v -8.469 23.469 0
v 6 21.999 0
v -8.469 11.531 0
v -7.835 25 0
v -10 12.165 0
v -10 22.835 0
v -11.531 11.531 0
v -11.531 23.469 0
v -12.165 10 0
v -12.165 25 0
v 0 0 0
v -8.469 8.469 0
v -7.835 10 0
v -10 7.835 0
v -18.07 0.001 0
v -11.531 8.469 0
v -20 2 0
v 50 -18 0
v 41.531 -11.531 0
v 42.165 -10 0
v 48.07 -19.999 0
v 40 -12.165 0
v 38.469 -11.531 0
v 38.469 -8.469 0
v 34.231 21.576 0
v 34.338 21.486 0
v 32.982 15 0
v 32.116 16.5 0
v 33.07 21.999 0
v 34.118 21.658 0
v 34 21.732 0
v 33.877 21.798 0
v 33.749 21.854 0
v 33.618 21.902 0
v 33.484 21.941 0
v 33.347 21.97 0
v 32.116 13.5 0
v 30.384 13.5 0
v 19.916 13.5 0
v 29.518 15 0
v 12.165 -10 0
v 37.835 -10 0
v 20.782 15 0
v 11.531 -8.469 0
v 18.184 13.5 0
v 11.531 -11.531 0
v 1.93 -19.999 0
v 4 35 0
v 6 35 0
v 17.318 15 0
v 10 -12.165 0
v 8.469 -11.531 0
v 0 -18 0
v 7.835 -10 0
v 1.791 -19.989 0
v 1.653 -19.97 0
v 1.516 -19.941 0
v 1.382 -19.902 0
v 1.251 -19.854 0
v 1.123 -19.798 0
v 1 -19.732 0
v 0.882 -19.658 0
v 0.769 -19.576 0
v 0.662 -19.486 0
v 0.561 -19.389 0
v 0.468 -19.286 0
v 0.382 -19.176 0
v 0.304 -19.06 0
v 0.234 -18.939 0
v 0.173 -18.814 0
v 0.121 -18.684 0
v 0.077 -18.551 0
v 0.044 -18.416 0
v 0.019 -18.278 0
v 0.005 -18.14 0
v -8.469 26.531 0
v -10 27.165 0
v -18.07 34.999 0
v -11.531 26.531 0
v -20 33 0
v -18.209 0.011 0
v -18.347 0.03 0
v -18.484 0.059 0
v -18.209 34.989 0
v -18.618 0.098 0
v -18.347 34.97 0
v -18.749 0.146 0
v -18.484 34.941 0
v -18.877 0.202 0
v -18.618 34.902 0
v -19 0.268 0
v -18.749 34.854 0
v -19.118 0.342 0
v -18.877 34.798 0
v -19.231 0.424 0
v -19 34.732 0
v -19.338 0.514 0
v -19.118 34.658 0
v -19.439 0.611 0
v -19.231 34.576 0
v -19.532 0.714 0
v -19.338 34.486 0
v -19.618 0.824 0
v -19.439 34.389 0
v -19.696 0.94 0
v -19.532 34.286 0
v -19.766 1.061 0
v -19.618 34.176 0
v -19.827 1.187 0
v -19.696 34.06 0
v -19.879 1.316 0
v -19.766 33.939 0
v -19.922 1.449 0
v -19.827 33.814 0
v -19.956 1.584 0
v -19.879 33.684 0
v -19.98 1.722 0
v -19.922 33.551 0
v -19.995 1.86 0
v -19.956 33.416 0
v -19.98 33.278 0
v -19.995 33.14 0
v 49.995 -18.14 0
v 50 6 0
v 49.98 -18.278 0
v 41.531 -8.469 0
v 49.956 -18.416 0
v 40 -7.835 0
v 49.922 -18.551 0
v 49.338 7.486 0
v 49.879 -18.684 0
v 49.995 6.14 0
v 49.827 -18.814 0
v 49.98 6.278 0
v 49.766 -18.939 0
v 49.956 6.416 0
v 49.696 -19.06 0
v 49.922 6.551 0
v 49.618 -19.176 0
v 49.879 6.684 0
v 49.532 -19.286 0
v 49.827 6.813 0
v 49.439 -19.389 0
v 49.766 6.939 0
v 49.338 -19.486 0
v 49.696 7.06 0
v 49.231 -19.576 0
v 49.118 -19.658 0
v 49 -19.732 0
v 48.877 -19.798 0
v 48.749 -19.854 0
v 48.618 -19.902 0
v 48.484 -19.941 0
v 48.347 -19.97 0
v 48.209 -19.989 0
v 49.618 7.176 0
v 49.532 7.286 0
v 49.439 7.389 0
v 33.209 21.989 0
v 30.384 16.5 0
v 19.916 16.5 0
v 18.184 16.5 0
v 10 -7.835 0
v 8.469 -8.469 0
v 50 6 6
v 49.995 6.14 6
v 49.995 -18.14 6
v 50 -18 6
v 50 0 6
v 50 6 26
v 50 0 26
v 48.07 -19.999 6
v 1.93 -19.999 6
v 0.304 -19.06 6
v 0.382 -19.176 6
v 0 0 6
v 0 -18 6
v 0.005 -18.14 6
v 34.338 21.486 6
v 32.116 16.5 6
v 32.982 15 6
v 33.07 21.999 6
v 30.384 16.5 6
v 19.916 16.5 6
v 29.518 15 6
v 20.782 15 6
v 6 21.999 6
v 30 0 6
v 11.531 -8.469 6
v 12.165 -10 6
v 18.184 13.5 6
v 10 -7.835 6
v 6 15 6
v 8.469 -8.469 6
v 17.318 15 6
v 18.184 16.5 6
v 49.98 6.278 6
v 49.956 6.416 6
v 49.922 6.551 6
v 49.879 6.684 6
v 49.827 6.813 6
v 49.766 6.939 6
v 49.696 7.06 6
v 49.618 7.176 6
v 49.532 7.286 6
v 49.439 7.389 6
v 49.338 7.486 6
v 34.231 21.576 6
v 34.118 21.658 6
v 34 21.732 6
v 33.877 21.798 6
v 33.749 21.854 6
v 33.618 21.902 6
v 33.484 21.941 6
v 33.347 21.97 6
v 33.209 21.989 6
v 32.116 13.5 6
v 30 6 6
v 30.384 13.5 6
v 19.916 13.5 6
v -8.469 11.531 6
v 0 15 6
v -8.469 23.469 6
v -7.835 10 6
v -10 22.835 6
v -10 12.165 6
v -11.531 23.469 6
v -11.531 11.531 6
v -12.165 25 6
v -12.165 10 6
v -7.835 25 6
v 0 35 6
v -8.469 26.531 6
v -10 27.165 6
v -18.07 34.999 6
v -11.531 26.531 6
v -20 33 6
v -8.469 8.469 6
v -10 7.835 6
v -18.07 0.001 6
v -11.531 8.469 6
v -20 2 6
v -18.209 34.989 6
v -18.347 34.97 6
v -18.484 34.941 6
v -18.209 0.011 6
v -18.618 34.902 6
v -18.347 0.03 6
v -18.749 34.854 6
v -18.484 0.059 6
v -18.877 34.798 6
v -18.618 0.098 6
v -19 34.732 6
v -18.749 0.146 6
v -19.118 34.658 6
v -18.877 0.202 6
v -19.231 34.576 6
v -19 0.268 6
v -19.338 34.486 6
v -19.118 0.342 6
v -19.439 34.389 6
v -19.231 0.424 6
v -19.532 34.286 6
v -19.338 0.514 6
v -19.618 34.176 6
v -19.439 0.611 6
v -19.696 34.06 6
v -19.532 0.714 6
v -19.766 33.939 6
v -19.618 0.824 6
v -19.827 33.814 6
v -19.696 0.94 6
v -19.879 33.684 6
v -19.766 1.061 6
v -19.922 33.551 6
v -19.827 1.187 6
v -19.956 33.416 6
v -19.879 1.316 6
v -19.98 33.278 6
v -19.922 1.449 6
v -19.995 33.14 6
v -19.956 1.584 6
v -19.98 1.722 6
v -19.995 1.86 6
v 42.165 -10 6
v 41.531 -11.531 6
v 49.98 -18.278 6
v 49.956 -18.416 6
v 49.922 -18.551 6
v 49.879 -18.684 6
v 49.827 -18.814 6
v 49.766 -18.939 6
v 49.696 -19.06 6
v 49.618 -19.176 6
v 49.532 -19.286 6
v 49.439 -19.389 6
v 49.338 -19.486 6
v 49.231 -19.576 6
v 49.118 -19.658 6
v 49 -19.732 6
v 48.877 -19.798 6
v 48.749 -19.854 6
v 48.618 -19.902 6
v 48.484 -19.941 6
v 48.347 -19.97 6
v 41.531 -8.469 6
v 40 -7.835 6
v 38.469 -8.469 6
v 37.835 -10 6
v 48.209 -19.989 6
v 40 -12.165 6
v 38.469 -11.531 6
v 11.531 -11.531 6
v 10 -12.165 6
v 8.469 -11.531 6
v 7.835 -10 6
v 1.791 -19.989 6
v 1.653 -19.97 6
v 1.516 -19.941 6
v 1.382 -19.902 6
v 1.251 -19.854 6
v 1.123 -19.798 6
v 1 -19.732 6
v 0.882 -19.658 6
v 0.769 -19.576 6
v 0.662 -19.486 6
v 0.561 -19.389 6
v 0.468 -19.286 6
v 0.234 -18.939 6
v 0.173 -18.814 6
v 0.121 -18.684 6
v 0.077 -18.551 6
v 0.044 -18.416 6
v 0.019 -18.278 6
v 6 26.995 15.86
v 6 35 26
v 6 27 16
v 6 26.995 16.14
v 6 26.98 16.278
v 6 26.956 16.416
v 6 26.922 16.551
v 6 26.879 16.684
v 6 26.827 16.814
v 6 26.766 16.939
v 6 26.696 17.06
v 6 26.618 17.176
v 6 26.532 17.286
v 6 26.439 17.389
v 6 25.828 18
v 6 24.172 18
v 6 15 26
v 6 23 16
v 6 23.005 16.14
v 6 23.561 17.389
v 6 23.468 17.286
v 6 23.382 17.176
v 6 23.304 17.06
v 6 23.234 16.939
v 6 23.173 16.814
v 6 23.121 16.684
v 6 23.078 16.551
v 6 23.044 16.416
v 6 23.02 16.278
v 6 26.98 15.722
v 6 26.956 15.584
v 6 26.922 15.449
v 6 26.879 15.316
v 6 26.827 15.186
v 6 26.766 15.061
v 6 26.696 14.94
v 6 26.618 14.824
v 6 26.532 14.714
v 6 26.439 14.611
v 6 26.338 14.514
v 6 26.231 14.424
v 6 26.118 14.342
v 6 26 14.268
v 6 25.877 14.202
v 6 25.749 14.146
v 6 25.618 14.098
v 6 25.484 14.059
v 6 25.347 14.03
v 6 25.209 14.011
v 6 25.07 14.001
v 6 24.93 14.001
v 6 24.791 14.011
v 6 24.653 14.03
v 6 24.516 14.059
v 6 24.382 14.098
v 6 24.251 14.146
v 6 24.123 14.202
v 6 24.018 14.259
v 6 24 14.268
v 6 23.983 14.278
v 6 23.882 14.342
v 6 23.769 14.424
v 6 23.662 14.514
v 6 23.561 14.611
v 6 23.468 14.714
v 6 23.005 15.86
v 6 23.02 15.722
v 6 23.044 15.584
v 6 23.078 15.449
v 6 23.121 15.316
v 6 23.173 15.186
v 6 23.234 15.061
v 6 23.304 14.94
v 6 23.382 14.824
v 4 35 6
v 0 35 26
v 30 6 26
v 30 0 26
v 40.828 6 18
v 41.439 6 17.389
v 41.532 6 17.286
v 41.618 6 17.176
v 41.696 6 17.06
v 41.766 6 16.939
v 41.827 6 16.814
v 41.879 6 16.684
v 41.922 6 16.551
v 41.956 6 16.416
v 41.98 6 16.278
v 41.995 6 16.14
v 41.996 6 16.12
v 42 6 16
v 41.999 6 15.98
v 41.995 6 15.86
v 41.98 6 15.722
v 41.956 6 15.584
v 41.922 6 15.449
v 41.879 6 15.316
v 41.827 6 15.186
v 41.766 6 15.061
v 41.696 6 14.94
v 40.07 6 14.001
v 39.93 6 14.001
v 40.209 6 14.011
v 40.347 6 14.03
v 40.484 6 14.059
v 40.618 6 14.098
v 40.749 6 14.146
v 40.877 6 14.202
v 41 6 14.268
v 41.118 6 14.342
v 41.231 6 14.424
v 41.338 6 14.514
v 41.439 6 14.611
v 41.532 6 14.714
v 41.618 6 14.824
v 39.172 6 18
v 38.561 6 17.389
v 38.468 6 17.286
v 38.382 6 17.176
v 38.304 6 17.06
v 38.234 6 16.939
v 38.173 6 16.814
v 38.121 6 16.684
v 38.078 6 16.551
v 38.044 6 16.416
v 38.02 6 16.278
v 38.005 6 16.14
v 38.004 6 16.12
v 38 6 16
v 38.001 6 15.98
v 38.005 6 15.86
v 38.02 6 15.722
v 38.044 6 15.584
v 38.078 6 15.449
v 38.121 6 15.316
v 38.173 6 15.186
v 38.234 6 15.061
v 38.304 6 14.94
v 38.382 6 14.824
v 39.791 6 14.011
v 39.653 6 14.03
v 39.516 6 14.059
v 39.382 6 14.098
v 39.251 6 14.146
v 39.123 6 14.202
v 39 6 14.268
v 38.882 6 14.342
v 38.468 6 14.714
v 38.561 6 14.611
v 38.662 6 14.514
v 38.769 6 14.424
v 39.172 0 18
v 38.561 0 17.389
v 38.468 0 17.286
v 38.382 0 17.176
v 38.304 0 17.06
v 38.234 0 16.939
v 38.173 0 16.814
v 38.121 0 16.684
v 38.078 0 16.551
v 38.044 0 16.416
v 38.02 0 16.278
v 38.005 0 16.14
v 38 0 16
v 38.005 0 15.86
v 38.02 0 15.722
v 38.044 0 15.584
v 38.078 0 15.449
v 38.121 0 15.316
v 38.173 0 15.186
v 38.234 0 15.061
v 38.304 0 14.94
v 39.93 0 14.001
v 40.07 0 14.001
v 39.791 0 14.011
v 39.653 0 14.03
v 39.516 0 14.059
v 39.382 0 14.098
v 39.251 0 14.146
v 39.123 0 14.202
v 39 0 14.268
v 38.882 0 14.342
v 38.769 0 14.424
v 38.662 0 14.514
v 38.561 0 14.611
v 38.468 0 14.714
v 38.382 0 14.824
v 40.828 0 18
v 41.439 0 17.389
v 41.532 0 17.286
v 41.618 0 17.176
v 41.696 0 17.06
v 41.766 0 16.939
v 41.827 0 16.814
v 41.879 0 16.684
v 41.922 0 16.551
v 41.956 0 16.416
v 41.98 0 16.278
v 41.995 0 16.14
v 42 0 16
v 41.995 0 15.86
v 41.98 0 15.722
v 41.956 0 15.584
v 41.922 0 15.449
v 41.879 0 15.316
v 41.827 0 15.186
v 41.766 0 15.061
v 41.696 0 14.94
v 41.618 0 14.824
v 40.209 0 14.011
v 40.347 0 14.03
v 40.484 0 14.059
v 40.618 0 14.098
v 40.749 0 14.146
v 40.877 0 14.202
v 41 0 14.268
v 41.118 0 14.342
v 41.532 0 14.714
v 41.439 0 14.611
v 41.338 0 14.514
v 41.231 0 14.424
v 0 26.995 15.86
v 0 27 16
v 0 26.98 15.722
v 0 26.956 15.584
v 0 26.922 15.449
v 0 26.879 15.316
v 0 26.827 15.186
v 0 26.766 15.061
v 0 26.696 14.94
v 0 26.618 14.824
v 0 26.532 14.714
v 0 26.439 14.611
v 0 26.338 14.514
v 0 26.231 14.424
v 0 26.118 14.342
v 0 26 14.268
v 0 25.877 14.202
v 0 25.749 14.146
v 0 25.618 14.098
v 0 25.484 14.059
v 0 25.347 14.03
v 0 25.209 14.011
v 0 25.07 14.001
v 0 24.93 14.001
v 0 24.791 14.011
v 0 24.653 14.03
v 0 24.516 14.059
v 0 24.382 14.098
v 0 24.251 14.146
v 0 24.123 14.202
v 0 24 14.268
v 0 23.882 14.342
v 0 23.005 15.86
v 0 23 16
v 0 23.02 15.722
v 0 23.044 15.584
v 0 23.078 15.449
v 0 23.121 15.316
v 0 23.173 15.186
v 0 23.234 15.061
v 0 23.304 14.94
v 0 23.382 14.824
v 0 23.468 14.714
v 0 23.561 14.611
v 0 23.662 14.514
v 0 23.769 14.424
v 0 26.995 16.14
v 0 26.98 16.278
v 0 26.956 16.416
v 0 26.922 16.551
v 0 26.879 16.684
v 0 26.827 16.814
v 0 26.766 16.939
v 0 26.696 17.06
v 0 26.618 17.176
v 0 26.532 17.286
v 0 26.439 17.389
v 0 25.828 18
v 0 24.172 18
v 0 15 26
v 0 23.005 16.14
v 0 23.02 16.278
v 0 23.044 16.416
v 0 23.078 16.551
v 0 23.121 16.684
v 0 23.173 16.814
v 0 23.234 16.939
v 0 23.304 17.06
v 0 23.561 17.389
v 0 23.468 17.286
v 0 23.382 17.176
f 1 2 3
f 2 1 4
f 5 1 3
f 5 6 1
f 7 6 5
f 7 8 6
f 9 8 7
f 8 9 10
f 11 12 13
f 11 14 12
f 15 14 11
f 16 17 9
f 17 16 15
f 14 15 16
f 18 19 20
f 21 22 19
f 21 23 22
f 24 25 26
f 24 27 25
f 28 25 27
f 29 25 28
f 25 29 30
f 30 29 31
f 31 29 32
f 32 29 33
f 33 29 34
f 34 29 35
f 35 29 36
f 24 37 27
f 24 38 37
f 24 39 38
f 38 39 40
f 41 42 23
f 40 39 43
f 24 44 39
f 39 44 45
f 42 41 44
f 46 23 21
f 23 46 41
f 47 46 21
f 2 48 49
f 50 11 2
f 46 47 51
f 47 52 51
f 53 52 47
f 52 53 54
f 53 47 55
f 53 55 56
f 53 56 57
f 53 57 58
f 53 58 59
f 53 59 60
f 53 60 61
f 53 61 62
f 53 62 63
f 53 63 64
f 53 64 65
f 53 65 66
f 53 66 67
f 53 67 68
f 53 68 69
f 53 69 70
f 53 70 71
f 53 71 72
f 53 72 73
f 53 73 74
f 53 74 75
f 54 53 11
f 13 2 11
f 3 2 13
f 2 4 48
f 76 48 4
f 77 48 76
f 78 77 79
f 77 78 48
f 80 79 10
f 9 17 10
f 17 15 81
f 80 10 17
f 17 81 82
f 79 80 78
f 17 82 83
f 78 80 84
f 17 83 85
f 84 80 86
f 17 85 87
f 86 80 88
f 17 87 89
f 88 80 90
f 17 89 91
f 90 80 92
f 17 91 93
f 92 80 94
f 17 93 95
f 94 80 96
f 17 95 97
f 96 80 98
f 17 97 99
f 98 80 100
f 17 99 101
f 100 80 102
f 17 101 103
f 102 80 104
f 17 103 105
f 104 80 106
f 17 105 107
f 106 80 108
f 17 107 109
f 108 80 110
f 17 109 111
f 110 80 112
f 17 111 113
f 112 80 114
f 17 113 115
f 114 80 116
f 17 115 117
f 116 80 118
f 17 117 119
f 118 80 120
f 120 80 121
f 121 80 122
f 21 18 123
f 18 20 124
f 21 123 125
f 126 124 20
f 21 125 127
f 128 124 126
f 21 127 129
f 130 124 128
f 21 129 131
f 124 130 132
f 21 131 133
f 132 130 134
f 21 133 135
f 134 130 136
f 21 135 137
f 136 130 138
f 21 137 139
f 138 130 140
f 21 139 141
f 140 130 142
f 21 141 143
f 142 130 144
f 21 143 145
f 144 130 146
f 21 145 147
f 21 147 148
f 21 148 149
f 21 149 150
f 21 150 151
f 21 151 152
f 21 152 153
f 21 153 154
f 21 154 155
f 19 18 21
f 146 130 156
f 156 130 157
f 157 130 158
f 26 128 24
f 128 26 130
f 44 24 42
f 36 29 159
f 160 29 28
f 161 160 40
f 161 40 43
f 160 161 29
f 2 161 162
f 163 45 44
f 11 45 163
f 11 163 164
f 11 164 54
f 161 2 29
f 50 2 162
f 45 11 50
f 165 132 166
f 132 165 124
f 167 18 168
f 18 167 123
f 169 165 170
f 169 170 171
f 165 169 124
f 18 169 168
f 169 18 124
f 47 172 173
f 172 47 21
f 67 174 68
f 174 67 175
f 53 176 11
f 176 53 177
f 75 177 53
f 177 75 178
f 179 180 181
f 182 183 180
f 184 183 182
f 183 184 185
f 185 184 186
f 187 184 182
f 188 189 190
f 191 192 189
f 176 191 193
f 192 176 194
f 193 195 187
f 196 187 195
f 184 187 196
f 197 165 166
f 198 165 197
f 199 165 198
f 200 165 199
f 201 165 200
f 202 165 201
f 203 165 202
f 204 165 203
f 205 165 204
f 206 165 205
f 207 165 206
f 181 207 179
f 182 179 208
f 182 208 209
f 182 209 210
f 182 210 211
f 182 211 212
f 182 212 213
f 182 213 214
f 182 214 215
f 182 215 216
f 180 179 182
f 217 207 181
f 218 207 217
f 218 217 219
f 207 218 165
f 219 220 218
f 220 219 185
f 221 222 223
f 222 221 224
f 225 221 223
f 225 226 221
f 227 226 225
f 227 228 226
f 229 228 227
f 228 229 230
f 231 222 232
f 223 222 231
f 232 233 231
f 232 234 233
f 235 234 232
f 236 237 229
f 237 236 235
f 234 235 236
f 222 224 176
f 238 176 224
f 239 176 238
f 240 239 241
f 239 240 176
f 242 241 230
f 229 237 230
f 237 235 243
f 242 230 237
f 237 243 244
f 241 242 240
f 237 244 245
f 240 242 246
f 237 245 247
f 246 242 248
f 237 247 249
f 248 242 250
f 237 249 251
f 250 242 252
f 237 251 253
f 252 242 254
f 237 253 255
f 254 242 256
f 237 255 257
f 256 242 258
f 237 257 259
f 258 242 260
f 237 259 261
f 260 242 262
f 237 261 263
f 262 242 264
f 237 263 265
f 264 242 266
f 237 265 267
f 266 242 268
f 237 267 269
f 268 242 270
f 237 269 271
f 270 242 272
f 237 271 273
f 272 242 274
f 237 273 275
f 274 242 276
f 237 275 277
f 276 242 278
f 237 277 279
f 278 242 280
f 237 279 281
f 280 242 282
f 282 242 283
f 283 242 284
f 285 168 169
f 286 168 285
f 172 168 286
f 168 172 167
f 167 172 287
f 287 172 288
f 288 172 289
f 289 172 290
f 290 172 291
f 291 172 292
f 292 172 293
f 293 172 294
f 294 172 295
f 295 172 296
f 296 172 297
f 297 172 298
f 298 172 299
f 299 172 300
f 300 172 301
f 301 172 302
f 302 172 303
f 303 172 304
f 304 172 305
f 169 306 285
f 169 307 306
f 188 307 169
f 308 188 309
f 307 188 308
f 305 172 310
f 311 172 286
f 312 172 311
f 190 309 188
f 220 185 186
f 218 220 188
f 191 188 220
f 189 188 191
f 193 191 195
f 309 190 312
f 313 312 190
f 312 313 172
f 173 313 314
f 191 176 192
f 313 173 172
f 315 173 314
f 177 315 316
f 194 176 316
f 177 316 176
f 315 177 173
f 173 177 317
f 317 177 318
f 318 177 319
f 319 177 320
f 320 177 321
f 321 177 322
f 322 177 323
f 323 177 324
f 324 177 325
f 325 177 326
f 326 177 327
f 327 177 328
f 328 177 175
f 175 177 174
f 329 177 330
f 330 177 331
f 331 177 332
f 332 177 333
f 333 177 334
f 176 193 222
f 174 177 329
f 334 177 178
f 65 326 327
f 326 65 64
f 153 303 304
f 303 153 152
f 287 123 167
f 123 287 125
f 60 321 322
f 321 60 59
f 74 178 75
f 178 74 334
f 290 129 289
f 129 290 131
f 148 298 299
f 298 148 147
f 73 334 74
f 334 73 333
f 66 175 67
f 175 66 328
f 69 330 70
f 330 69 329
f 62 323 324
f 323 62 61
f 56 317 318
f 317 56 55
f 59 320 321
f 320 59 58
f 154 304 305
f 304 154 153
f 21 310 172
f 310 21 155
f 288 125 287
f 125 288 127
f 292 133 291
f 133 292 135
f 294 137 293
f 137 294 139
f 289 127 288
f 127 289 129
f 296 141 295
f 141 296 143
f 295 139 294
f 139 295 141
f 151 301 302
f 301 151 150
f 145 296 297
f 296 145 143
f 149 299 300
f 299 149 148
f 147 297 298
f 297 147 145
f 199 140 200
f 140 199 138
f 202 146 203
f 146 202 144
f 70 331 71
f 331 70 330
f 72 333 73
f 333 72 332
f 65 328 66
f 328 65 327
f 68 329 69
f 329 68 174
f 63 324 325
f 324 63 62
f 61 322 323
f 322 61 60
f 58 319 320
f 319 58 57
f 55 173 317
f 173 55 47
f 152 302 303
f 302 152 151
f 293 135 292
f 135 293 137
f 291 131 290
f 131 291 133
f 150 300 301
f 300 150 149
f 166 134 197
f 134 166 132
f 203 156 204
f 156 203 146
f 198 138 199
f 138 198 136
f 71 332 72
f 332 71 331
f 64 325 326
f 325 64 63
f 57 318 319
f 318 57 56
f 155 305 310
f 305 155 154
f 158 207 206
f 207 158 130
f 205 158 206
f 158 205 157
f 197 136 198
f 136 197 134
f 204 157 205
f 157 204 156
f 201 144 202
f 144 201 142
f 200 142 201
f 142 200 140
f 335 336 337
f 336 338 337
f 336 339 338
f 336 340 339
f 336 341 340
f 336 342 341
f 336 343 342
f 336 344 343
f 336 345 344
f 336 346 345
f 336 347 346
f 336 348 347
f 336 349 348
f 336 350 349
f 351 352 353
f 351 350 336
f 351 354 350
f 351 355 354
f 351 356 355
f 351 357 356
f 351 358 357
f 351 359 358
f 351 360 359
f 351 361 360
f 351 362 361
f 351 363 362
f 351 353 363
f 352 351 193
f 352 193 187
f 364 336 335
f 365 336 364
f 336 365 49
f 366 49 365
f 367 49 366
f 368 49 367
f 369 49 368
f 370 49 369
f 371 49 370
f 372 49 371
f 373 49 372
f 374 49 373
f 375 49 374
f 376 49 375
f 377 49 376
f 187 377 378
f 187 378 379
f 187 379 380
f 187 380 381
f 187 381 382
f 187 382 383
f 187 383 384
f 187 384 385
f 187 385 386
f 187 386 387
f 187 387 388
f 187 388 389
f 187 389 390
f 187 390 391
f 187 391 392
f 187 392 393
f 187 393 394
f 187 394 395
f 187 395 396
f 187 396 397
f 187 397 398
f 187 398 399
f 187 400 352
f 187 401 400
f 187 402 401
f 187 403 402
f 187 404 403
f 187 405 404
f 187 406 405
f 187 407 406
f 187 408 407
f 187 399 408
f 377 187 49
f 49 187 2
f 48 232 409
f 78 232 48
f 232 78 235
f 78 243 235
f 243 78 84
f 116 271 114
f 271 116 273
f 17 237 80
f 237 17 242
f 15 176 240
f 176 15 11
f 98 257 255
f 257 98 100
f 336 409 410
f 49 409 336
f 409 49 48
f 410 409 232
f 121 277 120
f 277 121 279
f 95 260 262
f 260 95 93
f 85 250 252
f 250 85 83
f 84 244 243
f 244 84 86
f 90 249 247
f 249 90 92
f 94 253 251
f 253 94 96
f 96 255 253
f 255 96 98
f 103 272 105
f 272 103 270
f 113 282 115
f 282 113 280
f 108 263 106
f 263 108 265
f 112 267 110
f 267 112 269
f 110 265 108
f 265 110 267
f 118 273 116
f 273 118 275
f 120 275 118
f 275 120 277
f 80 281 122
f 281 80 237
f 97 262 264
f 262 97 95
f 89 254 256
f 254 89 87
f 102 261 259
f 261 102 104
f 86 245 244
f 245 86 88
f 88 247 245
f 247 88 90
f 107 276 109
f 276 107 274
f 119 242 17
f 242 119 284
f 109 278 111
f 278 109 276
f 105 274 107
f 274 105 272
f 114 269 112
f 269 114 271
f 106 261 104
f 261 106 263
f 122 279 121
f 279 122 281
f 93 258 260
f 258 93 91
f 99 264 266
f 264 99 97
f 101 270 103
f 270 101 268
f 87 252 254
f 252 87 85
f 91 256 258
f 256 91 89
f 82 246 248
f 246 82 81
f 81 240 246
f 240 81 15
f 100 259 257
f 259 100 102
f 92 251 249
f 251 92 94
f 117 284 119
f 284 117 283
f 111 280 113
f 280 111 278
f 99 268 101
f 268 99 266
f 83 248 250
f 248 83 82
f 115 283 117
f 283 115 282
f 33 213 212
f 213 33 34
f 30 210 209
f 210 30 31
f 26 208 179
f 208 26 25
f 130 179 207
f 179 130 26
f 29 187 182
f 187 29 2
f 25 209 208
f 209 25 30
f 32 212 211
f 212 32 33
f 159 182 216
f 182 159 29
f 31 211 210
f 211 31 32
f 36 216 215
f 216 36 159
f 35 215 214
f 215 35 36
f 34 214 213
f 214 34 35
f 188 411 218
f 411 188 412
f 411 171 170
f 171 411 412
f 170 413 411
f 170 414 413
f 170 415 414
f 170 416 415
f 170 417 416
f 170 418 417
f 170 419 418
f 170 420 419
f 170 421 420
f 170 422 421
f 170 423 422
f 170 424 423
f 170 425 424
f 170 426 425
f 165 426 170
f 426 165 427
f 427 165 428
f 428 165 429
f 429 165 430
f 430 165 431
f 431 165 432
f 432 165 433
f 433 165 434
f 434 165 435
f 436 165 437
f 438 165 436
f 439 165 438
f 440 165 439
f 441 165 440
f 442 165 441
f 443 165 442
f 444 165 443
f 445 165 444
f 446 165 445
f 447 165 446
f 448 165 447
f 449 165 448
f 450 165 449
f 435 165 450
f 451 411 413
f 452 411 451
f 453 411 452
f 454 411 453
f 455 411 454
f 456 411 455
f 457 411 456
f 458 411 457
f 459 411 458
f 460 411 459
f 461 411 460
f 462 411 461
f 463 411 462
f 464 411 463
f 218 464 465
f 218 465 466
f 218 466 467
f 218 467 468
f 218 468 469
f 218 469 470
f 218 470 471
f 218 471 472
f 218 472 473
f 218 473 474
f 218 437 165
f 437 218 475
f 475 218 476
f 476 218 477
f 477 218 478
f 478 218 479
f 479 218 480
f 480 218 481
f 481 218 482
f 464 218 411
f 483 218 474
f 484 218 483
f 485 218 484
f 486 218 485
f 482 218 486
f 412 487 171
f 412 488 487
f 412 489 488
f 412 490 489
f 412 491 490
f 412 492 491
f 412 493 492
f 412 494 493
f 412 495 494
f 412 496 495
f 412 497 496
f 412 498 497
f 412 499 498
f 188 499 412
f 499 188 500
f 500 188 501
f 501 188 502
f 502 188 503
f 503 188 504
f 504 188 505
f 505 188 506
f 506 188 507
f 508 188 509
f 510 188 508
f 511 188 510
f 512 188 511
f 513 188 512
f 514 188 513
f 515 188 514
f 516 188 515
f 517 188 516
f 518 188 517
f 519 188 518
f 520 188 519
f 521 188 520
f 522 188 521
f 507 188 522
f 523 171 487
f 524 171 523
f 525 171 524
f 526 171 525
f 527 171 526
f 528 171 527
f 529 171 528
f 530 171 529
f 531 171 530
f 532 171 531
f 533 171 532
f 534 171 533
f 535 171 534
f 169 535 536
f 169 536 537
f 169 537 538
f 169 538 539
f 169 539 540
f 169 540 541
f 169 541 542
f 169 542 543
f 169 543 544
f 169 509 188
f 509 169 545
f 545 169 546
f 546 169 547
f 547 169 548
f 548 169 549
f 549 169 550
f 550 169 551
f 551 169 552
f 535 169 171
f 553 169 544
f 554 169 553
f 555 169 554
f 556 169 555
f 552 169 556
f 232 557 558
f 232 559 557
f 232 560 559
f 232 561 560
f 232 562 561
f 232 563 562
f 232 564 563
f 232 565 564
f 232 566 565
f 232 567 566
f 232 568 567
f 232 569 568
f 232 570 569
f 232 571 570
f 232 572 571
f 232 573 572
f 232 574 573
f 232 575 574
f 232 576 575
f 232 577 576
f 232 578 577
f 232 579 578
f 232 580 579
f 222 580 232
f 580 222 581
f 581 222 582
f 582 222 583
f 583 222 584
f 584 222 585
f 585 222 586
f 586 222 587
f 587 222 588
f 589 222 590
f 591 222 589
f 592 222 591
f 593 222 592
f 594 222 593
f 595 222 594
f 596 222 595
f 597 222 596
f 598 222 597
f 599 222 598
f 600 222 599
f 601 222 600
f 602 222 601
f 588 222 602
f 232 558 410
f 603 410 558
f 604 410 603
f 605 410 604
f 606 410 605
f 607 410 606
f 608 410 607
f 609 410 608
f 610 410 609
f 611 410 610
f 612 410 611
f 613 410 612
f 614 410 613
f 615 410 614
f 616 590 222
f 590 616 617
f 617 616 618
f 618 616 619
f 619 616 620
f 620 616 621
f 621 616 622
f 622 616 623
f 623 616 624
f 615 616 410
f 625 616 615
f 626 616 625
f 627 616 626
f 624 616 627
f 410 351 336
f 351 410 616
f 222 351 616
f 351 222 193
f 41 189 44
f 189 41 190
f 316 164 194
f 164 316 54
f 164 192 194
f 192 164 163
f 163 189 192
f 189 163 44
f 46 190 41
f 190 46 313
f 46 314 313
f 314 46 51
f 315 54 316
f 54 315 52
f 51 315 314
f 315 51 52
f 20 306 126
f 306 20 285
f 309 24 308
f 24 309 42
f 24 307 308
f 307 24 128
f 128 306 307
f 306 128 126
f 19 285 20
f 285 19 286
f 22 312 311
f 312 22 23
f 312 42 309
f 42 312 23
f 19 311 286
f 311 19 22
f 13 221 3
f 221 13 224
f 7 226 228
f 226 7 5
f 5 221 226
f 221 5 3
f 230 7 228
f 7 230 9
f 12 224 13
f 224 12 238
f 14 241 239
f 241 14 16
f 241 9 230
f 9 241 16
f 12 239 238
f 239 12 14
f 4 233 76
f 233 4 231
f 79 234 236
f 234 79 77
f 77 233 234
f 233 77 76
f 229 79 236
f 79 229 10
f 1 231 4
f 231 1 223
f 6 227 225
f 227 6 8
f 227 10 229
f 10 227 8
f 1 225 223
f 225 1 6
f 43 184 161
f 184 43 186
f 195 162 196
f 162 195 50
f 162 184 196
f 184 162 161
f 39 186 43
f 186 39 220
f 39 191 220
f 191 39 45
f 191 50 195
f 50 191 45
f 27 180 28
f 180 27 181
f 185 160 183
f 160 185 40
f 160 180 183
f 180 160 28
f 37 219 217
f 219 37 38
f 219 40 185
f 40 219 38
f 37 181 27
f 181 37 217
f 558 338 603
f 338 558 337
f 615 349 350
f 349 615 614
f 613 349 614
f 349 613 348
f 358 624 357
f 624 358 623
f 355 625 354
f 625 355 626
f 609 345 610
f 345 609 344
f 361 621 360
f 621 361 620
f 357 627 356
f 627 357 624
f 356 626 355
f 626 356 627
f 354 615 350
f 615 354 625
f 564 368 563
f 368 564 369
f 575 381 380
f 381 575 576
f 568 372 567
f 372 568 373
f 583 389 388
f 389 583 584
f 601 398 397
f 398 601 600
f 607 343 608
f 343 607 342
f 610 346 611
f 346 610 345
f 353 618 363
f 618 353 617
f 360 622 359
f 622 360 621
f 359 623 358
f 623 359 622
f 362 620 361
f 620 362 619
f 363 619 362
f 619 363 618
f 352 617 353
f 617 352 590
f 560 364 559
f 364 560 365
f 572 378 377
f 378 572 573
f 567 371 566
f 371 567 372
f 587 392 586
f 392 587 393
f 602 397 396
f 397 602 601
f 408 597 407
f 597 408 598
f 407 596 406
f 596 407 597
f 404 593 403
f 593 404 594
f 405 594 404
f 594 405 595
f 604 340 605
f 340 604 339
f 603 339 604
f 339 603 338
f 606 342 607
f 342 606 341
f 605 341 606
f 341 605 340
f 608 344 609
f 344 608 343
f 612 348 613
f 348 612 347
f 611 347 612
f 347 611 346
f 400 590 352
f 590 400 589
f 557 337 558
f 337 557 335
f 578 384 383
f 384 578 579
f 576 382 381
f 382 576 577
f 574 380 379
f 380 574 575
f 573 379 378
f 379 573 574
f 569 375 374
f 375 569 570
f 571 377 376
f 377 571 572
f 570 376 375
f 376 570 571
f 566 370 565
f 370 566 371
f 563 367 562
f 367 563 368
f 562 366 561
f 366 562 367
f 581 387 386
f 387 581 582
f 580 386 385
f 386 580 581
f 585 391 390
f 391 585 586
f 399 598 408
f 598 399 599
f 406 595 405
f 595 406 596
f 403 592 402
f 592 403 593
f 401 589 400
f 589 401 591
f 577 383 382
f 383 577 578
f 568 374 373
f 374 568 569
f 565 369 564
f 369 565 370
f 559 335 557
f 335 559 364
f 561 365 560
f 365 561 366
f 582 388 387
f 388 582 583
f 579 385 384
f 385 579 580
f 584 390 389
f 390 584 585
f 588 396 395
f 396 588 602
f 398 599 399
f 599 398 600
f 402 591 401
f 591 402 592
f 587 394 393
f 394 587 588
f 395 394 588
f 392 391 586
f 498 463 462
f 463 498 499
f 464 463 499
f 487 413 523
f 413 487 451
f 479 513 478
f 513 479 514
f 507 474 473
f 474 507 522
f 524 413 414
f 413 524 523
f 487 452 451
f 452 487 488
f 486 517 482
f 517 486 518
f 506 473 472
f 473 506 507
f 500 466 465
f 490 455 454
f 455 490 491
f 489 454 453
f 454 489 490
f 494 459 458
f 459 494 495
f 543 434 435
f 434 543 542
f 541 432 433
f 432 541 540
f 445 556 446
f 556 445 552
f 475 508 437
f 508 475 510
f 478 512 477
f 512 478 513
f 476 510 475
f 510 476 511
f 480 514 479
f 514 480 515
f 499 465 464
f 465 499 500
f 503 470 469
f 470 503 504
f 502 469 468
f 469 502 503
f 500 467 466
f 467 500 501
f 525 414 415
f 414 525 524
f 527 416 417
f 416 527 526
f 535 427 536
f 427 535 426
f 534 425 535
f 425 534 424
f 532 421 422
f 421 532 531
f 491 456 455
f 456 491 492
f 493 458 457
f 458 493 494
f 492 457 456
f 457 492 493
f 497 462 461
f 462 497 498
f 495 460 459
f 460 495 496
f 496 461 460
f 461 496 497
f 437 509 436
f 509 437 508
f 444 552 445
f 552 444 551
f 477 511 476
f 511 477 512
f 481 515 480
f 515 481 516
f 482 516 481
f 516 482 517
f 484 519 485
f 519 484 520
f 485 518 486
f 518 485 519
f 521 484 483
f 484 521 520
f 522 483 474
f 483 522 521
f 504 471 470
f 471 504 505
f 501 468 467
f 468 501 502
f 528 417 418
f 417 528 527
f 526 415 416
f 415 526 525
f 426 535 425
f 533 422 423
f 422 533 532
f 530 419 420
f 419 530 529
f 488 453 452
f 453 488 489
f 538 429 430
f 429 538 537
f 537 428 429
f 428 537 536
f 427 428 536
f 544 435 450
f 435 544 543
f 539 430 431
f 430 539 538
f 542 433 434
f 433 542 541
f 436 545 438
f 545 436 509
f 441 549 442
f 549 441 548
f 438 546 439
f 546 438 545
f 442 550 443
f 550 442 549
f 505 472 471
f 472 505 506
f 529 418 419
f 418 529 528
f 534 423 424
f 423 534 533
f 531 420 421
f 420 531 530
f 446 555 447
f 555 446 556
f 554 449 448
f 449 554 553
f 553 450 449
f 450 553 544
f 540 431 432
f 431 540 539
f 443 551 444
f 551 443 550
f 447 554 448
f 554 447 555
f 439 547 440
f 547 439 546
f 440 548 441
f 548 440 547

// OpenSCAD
// file: trunctear.scad
//A module for truncated tear drops.

trunctear(1, 0.5, 90);

module trunctear(height, radian, fn)
{
    hull()
    {
        cylinder(h = height, r = radian,$fn = fn);
        translate([0, radian/2, height/2])
            cube([2*(radian*(2*cos(45)-1)), radian, height], center = true);
    }
}
// file: polyhole.scad
// The Cylinder is dead! Long live the Cylinder!
// A module for a polyhole by radius, based on Nophead's work.

module polyhole(h, r, cent = false)
{
    n = max(round(4 * r), 3);
    cylinder(h = h, r = r / cos(180 / n), $fn = n, center = cent);
}
// main file
// A generic bearing mount

use<polyhole.scad>
use<trunctear.scad>

BearingMount();

module BearingMount()
{
    difference()
    {
        union()
        {
            hull()
            {
                translate([2, 6, 0])
                    cylinder(h = 6, r = 2, $fn = 90);
                translate([2, -18, 0])
                    cylinder(h = 6, r = 2, $fn = 90);
                translate([48, -18, 0])
                    cylinder(h = 6, r = 2, $fn = 90);
                translate([48, 6, 0])
                    cylinder(h = 6, r = 2, $fn = 90);
            }
            hull()
            {
                translate([5, 1, 3])
                    cube([2, 2, 6], center = true);
                translate([-18, 2, 0])
                    cylinder(h = 6, r = 2, $fn = 90);
                translate([-18, 33, 0])
                    cylinder(h = 6, r = 2, $fn = 90);
                translate([5, 34, 3])
                    cube([2, 2, 6], center = true);
            }
            hull()
            {
                translate([6, 6, 0])
                    cylinder(h = 6, r = 2, $fn = 90);
                translate([6, 20, 0])
                    cylinder(h = 6, r = 2, $fn = 90);
                translate([33, 20, 0])
                    cylinder(h = 6, r = 2, $fn = 90);
                translate([48, 6, 0])
                    cylinder(h = 6, r = 2, $fn = 90);
            }
            translate([40, 3, 16])
                cube([20, 6, 20], center = true);
            translate([3, 25, 16])
                cube([6, 20, 20], center = true);
        }
        translate([10, -10, 0])
            polyhole(6, 2);
        translate([40, -10, 0])
            polyhole(6, 2);
        translate([-10, 10, 0])
            polyhole(6, 2);
        translate([-10, 25, 0])
            polyhole(6, 2);
        translate([19.05, 15, 0])
            polyhole(6, 1.5);
        translate([31.25, 15, 0])
            polyhole(6, 1.5);
        translate([0, 25, 16])
            rotate([90, 0, 90])
                trunctear(7, 2, 90);
        translate([40, 0, 16])
            rotate([-90, 180, 0])
                trunctear(7, 2, 90);
    }
}
